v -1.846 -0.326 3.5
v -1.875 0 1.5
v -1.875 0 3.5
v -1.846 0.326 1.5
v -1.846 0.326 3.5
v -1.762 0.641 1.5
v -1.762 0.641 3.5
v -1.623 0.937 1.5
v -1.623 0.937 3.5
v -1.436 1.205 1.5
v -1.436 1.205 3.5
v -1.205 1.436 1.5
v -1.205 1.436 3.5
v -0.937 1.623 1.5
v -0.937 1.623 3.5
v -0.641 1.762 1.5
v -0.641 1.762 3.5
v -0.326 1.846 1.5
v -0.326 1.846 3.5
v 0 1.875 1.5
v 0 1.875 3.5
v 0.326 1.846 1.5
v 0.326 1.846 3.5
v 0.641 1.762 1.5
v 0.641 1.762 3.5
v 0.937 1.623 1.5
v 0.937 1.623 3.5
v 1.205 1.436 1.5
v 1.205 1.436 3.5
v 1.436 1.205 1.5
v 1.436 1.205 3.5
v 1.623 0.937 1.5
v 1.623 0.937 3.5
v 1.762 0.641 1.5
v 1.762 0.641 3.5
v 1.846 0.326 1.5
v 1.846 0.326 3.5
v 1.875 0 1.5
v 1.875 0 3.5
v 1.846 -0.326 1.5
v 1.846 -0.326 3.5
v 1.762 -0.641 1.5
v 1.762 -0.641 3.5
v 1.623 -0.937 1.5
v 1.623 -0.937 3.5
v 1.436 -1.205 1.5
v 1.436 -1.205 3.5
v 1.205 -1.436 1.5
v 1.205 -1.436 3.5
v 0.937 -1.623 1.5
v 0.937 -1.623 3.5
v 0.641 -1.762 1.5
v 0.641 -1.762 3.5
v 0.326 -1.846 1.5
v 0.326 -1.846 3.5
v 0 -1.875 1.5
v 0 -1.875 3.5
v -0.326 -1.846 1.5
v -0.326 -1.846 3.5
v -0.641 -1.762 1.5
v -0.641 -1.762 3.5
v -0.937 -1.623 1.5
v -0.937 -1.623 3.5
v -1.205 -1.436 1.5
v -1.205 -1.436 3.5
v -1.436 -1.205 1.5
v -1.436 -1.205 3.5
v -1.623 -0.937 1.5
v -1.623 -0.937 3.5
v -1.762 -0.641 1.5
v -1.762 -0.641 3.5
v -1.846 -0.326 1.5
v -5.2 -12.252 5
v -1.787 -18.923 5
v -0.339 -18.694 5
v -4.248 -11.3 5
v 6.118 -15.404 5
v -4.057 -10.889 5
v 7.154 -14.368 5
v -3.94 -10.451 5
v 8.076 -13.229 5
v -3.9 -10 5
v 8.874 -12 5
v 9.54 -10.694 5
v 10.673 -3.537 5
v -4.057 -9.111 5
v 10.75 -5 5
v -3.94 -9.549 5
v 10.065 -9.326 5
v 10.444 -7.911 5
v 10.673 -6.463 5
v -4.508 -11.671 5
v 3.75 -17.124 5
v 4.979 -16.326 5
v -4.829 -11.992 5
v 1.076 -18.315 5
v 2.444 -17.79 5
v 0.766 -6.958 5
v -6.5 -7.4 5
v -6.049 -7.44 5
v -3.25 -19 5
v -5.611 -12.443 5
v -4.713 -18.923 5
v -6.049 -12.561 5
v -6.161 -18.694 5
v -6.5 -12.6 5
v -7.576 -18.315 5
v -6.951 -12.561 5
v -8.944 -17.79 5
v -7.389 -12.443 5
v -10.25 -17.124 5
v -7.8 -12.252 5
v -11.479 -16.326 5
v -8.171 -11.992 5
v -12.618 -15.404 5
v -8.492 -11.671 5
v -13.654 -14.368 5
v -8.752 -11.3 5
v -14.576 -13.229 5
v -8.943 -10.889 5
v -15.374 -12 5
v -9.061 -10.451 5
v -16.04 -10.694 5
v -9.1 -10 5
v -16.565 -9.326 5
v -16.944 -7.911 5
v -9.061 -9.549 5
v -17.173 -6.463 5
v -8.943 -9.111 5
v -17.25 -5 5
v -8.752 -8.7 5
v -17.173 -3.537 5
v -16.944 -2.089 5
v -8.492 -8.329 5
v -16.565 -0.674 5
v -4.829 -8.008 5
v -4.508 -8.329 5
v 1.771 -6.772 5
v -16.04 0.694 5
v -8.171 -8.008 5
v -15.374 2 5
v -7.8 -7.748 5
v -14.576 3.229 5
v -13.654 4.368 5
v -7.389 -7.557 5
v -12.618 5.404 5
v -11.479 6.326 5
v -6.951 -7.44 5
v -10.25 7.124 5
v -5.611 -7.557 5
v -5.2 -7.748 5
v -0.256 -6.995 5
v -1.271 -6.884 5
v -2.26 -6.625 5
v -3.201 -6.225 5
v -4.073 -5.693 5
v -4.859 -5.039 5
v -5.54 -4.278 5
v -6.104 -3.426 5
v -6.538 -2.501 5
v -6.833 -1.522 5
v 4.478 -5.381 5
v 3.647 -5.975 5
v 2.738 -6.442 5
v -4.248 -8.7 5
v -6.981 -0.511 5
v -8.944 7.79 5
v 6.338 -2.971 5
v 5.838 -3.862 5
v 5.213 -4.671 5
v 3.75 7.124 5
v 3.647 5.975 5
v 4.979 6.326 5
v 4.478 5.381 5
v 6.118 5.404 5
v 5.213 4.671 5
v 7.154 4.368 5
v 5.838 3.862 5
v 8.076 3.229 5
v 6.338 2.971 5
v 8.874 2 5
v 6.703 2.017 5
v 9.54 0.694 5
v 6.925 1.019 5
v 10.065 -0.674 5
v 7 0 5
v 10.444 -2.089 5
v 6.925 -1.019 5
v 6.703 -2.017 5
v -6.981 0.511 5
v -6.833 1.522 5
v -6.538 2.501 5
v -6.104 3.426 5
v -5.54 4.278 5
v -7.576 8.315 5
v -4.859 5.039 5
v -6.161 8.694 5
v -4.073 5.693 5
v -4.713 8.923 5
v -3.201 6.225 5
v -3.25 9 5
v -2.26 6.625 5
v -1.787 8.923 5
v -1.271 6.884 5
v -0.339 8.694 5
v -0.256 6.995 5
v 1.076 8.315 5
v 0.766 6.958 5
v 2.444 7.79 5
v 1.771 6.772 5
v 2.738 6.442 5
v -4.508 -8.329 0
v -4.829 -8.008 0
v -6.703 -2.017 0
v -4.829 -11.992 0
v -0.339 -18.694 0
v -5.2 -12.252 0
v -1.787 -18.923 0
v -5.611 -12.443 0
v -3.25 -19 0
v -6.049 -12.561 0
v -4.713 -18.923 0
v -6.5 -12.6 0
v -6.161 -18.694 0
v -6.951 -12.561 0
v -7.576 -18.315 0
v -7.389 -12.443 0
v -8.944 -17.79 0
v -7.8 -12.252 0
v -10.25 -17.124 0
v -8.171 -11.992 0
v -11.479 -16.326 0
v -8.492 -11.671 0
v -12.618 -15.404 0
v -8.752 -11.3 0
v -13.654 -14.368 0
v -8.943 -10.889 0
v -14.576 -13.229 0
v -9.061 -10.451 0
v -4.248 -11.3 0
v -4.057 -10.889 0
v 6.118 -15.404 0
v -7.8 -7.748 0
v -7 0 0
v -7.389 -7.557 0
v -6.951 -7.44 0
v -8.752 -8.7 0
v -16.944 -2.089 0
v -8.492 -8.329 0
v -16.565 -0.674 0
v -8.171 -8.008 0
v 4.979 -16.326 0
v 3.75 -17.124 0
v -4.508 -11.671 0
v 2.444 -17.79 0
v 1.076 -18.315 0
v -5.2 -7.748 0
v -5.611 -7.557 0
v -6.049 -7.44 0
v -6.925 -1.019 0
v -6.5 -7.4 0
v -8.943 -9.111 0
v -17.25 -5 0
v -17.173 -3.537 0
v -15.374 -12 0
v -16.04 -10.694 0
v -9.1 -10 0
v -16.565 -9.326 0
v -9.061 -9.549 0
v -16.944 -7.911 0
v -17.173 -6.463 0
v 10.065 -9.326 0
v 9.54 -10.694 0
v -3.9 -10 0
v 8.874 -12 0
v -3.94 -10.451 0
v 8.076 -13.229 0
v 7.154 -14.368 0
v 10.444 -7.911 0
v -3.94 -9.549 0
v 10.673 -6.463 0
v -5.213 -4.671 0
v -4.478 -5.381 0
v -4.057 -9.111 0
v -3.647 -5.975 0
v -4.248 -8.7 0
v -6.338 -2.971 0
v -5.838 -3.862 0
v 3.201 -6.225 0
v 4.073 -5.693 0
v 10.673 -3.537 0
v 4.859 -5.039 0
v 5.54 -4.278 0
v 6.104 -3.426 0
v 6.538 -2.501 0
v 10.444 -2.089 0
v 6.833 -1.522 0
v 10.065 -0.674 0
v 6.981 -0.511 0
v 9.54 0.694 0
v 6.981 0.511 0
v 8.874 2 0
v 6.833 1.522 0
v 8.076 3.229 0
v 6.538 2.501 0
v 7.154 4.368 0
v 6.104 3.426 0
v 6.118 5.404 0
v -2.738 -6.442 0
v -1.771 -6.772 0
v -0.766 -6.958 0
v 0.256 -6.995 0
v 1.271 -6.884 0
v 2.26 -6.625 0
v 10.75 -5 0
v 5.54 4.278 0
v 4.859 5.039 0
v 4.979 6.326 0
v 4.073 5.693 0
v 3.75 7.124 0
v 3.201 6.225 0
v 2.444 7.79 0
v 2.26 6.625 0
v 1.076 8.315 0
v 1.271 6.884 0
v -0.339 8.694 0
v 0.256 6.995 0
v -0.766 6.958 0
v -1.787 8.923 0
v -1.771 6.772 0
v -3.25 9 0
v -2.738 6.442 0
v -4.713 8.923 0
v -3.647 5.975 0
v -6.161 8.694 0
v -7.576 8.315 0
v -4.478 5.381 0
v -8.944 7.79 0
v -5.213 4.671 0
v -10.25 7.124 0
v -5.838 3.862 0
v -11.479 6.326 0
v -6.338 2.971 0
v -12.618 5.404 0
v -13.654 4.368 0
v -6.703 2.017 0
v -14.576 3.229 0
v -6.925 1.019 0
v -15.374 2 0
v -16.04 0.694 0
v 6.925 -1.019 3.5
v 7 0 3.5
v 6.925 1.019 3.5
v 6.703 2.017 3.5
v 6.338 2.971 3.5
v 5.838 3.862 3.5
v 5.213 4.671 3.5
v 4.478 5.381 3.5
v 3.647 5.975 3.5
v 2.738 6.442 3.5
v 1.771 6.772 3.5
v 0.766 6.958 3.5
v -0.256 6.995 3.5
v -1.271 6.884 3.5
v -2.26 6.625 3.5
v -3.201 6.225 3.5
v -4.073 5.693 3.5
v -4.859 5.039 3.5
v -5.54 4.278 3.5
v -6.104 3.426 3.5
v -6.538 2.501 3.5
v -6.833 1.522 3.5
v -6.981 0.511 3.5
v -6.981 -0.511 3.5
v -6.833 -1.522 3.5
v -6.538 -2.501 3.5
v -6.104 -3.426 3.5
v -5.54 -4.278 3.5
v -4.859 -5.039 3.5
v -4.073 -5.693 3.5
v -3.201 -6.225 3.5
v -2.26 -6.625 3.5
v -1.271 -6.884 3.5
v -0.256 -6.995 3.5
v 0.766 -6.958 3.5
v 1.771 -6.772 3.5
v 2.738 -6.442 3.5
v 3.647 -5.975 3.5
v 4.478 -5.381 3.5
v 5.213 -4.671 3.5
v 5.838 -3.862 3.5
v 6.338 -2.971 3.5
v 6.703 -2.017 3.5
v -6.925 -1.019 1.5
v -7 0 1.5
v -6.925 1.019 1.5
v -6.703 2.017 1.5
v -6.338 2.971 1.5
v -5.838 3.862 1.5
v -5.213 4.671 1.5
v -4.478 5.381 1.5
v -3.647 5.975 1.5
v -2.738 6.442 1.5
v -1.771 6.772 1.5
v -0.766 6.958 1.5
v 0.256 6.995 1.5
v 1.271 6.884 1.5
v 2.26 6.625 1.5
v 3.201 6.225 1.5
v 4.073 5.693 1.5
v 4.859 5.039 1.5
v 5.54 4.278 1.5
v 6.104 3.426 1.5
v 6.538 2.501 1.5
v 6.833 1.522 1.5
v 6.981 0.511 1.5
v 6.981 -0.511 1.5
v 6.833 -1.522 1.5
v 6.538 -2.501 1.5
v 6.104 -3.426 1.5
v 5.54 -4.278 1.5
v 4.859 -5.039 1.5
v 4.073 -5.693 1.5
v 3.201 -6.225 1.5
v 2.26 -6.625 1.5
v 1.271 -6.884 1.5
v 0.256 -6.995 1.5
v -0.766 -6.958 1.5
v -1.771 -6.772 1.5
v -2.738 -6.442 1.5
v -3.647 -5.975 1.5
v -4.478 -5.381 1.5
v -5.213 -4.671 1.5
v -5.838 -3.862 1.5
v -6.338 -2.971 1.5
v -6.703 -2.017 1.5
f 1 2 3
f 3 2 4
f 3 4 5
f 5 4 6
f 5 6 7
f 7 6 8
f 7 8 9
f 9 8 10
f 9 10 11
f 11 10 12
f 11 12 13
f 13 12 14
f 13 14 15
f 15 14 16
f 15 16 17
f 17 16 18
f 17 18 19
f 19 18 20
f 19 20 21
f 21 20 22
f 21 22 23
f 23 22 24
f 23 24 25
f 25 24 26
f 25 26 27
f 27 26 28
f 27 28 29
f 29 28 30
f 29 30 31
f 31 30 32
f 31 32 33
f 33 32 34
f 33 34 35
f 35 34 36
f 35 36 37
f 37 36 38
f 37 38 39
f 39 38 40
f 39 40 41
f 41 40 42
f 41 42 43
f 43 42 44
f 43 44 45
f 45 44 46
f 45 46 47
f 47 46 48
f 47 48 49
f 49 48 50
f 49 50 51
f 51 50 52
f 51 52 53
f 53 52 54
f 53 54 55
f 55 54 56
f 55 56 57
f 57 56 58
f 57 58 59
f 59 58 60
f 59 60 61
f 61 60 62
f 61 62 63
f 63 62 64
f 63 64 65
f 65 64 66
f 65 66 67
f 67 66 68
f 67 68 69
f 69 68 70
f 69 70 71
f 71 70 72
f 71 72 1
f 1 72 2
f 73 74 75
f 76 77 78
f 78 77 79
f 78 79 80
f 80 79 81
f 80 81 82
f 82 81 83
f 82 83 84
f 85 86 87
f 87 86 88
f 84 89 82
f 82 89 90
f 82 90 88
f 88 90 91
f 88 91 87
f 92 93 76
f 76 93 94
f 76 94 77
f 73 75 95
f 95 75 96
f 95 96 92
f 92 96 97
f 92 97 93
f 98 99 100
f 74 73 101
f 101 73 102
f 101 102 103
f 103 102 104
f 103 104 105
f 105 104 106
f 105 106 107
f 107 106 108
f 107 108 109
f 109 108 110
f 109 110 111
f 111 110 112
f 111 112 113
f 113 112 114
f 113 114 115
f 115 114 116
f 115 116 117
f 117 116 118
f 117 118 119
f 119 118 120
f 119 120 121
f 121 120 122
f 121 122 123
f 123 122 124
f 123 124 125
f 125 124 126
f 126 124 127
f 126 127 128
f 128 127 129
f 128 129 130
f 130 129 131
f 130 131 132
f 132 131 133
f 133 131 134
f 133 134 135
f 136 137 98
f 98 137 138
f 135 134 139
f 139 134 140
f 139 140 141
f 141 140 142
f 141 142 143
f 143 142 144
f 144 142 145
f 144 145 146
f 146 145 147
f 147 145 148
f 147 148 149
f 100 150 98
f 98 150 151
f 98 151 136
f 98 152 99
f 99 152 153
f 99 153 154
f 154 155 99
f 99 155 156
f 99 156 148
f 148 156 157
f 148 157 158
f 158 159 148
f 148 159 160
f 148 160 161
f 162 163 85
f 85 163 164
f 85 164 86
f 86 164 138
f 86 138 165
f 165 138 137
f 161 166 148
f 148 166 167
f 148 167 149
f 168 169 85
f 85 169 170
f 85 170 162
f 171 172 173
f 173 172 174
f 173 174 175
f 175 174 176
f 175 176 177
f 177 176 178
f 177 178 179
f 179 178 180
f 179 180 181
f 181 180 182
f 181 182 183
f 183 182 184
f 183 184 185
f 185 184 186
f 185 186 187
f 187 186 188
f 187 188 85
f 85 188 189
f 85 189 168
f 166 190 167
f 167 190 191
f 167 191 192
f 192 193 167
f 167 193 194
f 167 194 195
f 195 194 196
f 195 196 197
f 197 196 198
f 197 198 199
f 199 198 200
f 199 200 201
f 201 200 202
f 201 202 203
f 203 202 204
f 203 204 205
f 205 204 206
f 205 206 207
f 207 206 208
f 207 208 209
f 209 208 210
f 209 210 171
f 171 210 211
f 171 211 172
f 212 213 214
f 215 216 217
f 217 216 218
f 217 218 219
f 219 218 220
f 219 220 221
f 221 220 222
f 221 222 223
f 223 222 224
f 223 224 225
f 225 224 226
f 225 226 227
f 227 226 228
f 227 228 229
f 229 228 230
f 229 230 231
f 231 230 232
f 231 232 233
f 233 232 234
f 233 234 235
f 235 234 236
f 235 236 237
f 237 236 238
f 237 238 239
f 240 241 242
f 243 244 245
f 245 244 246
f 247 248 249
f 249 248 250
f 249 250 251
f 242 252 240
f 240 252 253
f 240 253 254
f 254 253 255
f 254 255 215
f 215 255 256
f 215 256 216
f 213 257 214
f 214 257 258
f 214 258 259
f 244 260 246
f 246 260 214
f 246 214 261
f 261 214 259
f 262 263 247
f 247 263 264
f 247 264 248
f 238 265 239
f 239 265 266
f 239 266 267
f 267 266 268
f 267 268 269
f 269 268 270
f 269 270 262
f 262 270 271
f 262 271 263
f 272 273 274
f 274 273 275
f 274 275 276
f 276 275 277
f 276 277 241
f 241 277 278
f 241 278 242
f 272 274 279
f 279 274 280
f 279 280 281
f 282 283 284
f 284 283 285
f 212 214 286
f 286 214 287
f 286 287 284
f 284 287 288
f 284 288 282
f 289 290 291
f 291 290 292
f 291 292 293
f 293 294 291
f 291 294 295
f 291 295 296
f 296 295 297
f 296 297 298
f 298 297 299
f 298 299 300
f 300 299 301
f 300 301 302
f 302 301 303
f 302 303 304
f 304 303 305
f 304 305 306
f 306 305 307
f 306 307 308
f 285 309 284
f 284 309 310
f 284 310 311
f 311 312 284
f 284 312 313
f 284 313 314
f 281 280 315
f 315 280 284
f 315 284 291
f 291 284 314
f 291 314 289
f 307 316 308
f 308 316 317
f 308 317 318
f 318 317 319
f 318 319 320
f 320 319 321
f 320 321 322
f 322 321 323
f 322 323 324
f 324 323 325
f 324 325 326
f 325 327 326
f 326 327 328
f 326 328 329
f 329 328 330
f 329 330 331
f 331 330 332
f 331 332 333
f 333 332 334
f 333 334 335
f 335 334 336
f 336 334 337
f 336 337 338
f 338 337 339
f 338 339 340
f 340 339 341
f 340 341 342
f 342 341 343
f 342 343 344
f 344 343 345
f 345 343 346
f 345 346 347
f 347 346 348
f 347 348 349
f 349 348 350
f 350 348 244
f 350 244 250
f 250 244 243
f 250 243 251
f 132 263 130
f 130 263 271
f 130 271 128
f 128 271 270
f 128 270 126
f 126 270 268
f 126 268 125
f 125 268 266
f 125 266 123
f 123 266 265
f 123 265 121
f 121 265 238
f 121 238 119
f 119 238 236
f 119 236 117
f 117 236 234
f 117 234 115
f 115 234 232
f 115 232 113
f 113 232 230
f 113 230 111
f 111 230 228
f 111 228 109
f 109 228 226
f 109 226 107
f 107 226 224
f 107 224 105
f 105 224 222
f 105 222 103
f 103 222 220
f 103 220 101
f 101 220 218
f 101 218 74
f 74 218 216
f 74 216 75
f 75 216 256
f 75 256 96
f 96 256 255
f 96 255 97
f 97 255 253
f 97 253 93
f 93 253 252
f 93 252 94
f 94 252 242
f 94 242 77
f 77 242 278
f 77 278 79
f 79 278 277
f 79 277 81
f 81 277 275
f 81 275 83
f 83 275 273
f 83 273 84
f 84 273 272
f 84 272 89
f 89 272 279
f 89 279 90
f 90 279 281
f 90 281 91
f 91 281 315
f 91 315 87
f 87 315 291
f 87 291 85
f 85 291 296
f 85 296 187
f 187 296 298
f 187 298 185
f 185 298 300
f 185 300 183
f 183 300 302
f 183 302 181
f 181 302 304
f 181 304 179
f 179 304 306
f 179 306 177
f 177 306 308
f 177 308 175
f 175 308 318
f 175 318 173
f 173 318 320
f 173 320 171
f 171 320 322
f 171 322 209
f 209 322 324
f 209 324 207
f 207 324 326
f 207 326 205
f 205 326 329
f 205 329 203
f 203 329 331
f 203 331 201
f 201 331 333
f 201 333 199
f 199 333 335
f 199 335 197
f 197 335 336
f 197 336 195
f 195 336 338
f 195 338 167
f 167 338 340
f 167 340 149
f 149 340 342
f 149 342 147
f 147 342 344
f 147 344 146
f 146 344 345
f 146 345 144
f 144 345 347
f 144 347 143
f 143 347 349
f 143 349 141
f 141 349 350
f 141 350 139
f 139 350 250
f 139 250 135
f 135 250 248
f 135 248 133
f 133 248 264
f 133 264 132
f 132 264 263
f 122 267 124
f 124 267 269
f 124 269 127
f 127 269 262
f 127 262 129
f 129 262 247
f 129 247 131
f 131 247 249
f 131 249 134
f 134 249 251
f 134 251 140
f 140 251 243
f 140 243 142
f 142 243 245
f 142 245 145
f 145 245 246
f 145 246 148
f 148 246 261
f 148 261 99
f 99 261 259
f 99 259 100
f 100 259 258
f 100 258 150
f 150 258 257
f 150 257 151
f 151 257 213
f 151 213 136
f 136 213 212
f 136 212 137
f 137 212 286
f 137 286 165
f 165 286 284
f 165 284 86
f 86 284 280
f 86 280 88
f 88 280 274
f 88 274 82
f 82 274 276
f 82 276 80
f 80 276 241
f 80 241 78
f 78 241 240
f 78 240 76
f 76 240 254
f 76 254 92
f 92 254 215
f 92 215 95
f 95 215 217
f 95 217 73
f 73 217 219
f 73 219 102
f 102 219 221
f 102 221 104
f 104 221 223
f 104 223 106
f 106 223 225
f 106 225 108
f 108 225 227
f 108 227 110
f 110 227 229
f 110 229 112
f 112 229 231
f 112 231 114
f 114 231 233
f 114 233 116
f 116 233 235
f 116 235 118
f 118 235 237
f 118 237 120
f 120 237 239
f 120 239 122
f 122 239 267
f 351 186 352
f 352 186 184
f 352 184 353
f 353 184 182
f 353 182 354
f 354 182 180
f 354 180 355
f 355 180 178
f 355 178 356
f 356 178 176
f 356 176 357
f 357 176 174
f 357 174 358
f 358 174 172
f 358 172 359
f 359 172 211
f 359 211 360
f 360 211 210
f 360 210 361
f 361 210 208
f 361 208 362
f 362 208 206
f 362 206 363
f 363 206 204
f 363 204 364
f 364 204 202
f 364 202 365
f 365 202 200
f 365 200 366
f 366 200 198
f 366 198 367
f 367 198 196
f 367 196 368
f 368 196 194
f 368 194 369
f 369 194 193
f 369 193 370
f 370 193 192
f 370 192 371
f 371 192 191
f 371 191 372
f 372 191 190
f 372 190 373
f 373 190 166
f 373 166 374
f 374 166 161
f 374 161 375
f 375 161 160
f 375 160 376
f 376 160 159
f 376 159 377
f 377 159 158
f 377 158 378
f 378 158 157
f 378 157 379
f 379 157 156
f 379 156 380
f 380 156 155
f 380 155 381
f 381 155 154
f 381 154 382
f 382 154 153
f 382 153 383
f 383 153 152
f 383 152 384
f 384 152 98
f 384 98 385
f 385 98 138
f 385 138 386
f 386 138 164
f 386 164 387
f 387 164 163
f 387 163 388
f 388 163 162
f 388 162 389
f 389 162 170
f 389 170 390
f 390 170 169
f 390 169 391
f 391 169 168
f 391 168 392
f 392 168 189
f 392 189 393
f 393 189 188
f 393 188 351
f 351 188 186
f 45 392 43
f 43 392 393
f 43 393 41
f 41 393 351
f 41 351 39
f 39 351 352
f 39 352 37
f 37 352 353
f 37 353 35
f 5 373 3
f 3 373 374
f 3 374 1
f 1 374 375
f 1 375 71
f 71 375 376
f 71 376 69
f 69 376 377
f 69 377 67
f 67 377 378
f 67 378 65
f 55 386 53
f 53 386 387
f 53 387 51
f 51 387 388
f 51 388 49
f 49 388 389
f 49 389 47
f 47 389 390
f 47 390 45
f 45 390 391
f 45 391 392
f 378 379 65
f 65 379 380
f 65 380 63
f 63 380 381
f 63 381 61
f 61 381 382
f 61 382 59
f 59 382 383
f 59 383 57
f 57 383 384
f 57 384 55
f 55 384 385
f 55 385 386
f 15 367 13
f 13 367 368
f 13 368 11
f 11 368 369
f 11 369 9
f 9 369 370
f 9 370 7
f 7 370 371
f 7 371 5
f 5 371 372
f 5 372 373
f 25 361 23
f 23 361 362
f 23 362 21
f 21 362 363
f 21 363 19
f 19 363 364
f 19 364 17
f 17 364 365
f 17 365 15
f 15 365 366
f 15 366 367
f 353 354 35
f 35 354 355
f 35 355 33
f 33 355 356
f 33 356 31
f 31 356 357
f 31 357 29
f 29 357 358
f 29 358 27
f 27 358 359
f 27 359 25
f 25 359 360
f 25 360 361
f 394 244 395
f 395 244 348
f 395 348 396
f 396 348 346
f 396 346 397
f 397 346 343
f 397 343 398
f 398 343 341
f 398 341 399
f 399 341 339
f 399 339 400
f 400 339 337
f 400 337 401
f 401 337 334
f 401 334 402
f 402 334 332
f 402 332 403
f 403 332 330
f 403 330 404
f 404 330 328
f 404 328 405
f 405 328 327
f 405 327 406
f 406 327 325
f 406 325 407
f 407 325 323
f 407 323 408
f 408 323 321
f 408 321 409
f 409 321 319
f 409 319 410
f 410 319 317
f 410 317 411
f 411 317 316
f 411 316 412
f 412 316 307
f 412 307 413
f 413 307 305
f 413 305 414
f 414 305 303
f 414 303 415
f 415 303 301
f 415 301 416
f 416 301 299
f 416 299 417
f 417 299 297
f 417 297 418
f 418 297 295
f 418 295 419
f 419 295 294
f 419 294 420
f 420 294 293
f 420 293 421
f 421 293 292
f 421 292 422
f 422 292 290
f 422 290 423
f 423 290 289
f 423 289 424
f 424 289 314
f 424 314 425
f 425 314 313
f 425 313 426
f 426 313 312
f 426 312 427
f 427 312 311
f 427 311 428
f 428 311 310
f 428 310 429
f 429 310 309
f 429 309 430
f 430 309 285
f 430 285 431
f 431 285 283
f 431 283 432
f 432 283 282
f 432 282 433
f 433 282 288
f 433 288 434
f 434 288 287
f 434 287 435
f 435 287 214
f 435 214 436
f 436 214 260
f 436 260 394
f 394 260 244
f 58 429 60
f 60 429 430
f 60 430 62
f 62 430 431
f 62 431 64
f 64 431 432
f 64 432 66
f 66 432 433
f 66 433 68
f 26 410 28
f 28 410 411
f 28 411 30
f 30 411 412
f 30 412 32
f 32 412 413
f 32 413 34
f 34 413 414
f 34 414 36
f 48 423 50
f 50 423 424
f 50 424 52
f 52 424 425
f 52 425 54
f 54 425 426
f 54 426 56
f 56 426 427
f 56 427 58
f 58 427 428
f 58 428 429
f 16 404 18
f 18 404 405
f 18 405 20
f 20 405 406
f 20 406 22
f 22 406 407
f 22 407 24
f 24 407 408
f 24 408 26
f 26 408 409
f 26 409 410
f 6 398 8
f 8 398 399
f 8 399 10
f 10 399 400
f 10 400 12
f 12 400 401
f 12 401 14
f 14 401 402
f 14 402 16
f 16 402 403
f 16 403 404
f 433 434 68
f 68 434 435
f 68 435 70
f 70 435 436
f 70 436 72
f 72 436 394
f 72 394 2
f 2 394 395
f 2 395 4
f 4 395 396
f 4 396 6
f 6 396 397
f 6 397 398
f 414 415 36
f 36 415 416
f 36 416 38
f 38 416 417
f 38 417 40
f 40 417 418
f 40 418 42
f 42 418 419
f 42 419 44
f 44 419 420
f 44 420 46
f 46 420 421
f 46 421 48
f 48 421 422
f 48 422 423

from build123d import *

# Parameters (mm, degrees)
ESQUISSE1_R             = 14
ESQUISSE1_R_2           = 1.874597255
ESQUISSE1_R_3           = 2.6
BOSS_EXTRU_1_DEPTH      = 5
ESQUISSE2_R             = 7
ENL_V_MAT_EXTRU_1_DEPTH = 1.5
ESQUISSE3_R             = 7
ENL_V_MAT_EXTRU_2_DEPTH = 1.5


with BuildPart() as part:
    # Esquisse1 → Boss.-Extru.1 (new body)
    with BuildSketch(Plane.XY):
        with Locations((-3.25, -5)):
            Circle(ESQUISSE1_R)
        Circle(ESQUISSE1_R_2, mode=Mode.SUBTRACT)
        with Locations((-6.5, -10)):
            Circle(ESQUISSE1_R_3, mode=Mode.SUBTRACT)
    extrude(amount=BOSS_EXTRU_1_DEPTH)

    # Esquisse2 → Enlèv. mat.-Extru.1 (cut)
    with BuildSketch(Plane.XY.offset(5)):
        Circle(ESQUISSE2_R)
    extrude(amount=-ENL_V_MAT_EXTRU_1_DEPTH, mode=Mode.SUBTRACT)

    # Esquisse3 → Enlèv. mat.-Extru.2 (cut)
    with BuildSketch(Plane(origin=(0, 0, 0), x_dir=(-1, 0, 0), z_dir=(0, 0, -1))):
        Circle(ESQUISSE3_R)
    extrude(amount=-ENL_V_MAT_EXTRU_2_DEPTH, mode=Mode.SUBTRACT)


solid = part.part
